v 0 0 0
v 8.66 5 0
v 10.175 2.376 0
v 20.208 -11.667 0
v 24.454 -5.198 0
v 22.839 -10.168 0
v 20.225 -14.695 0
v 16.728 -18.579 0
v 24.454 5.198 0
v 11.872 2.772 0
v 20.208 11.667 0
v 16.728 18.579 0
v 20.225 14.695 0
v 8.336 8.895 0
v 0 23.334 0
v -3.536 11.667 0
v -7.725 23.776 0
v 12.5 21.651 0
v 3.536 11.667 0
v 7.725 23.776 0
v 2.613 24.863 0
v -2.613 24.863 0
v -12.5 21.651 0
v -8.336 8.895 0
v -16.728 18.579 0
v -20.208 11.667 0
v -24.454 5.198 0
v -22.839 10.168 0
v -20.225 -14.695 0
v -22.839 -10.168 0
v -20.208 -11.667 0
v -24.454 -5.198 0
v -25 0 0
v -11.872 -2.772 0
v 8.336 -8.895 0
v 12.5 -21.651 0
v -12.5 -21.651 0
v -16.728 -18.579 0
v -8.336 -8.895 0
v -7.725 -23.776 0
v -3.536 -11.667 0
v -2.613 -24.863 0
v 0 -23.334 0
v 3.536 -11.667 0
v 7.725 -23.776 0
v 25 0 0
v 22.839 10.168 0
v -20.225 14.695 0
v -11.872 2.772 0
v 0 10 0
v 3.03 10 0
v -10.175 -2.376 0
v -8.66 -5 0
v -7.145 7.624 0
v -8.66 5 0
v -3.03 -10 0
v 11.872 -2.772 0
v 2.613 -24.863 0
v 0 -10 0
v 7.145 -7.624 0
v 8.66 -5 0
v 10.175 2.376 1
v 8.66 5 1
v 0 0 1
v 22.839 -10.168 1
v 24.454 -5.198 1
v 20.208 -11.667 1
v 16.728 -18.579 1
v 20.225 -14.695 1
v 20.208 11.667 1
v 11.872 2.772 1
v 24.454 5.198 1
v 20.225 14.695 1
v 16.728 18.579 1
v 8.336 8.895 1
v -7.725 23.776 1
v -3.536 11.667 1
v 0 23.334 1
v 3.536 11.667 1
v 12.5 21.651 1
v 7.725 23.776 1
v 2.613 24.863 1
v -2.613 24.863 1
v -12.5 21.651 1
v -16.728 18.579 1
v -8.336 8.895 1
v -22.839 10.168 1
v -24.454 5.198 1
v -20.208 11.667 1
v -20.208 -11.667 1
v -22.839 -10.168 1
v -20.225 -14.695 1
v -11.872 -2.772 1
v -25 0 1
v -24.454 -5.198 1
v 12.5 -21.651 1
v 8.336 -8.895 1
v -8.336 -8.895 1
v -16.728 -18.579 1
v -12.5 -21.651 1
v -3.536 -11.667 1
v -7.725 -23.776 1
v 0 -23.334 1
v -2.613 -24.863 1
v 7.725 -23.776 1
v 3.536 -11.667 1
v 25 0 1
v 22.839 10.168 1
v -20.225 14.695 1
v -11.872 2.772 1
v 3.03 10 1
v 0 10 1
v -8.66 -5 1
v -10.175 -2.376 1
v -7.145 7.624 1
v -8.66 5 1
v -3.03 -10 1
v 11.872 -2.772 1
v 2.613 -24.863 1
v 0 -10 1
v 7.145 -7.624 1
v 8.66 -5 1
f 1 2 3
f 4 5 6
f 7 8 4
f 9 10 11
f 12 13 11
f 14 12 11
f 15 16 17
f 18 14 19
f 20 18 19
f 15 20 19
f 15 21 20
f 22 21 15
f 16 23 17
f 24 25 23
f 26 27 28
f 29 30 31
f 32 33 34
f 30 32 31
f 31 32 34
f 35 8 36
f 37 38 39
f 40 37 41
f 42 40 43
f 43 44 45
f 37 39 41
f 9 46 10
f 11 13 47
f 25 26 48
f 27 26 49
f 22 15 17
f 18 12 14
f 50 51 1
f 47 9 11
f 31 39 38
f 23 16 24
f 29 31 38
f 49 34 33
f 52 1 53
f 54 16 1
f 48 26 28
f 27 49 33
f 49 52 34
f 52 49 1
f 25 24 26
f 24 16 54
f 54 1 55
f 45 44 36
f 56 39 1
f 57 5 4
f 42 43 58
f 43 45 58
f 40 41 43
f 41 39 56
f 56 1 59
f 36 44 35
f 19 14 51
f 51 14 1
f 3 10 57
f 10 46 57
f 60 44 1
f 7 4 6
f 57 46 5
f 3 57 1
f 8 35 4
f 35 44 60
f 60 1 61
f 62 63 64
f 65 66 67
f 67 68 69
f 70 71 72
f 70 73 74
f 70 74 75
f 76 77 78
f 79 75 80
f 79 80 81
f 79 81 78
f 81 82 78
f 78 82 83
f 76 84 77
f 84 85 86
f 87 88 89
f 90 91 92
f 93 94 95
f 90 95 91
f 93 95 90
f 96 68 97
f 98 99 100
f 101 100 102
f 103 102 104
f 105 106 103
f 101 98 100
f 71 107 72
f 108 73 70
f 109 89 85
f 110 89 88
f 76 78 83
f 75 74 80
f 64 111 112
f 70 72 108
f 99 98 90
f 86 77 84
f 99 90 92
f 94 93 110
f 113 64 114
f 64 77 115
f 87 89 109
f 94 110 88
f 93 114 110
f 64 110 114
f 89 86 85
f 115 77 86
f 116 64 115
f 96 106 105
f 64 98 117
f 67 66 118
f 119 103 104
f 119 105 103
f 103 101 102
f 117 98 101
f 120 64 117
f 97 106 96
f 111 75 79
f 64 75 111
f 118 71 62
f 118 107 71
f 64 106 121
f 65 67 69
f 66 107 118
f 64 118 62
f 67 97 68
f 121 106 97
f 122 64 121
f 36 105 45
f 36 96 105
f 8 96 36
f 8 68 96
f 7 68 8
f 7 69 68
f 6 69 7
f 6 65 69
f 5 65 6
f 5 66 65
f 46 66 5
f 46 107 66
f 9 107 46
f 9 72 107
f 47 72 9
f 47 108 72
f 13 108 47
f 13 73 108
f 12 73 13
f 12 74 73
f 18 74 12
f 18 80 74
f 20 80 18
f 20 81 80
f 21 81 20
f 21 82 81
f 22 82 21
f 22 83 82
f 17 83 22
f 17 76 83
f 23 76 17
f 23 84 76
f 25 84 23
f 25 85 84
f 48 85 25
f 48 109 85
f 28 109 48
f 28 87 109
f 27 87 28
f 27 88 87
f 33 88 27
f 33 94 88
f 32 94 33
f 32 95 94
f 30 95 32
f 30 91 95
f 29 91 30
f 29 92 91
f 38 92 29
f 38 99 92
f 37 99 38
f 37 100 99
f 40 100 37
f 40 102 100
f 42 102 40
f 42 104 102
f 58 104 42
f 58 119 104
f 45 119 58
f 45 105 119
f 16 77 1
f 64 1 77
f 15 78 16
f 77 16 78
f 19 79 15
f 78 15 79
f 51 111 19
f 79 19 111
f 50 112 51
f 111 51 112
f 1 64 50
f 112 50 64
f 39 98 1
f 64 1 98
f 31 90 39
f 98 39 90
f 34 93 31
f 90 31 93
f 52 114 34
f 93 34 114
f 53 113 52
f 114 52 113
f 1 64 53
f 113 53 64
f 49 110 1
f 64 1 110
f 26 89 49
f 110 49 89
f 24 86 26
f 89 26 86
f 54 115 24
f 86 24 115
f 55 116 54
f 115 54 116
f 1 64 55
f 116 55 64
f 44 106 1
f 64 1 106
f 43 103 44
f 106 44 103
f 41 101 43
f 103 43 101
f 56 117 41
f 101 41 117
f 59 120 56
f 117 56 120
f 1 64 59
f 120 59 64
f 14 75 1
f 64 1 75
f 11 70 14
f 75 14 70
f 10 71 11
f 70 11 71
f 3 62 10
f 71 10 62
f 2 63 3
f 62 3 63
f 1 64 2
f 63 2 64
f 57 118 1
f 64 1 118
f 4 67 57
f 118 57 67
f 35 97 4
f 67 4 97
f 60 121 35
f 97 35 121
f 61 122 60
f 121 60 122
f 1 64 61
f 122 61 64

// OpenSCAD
linear_extrude(height=1) {
    projection(){
        difference()
        {
            sphere(d = 50, $fn=30);
            for(i=[0:5]) {
                rotate([0,0,60*i]) {
                    difference() {
                        scale([1,3.3,1]) {
                            rotate([0,0,45]) {
                                translate([0,0,-50]) {
                                    cube([5, 5, 100]);
                                }
                            }
                        }
                        translate([0,0,-50]) {
                            cube([10,10,100]);
                        }
                    }
                }
            }
            translate([0,0,-40]) {
                sphere(d = 50, $fn=30);
            }
        }
    }
}
